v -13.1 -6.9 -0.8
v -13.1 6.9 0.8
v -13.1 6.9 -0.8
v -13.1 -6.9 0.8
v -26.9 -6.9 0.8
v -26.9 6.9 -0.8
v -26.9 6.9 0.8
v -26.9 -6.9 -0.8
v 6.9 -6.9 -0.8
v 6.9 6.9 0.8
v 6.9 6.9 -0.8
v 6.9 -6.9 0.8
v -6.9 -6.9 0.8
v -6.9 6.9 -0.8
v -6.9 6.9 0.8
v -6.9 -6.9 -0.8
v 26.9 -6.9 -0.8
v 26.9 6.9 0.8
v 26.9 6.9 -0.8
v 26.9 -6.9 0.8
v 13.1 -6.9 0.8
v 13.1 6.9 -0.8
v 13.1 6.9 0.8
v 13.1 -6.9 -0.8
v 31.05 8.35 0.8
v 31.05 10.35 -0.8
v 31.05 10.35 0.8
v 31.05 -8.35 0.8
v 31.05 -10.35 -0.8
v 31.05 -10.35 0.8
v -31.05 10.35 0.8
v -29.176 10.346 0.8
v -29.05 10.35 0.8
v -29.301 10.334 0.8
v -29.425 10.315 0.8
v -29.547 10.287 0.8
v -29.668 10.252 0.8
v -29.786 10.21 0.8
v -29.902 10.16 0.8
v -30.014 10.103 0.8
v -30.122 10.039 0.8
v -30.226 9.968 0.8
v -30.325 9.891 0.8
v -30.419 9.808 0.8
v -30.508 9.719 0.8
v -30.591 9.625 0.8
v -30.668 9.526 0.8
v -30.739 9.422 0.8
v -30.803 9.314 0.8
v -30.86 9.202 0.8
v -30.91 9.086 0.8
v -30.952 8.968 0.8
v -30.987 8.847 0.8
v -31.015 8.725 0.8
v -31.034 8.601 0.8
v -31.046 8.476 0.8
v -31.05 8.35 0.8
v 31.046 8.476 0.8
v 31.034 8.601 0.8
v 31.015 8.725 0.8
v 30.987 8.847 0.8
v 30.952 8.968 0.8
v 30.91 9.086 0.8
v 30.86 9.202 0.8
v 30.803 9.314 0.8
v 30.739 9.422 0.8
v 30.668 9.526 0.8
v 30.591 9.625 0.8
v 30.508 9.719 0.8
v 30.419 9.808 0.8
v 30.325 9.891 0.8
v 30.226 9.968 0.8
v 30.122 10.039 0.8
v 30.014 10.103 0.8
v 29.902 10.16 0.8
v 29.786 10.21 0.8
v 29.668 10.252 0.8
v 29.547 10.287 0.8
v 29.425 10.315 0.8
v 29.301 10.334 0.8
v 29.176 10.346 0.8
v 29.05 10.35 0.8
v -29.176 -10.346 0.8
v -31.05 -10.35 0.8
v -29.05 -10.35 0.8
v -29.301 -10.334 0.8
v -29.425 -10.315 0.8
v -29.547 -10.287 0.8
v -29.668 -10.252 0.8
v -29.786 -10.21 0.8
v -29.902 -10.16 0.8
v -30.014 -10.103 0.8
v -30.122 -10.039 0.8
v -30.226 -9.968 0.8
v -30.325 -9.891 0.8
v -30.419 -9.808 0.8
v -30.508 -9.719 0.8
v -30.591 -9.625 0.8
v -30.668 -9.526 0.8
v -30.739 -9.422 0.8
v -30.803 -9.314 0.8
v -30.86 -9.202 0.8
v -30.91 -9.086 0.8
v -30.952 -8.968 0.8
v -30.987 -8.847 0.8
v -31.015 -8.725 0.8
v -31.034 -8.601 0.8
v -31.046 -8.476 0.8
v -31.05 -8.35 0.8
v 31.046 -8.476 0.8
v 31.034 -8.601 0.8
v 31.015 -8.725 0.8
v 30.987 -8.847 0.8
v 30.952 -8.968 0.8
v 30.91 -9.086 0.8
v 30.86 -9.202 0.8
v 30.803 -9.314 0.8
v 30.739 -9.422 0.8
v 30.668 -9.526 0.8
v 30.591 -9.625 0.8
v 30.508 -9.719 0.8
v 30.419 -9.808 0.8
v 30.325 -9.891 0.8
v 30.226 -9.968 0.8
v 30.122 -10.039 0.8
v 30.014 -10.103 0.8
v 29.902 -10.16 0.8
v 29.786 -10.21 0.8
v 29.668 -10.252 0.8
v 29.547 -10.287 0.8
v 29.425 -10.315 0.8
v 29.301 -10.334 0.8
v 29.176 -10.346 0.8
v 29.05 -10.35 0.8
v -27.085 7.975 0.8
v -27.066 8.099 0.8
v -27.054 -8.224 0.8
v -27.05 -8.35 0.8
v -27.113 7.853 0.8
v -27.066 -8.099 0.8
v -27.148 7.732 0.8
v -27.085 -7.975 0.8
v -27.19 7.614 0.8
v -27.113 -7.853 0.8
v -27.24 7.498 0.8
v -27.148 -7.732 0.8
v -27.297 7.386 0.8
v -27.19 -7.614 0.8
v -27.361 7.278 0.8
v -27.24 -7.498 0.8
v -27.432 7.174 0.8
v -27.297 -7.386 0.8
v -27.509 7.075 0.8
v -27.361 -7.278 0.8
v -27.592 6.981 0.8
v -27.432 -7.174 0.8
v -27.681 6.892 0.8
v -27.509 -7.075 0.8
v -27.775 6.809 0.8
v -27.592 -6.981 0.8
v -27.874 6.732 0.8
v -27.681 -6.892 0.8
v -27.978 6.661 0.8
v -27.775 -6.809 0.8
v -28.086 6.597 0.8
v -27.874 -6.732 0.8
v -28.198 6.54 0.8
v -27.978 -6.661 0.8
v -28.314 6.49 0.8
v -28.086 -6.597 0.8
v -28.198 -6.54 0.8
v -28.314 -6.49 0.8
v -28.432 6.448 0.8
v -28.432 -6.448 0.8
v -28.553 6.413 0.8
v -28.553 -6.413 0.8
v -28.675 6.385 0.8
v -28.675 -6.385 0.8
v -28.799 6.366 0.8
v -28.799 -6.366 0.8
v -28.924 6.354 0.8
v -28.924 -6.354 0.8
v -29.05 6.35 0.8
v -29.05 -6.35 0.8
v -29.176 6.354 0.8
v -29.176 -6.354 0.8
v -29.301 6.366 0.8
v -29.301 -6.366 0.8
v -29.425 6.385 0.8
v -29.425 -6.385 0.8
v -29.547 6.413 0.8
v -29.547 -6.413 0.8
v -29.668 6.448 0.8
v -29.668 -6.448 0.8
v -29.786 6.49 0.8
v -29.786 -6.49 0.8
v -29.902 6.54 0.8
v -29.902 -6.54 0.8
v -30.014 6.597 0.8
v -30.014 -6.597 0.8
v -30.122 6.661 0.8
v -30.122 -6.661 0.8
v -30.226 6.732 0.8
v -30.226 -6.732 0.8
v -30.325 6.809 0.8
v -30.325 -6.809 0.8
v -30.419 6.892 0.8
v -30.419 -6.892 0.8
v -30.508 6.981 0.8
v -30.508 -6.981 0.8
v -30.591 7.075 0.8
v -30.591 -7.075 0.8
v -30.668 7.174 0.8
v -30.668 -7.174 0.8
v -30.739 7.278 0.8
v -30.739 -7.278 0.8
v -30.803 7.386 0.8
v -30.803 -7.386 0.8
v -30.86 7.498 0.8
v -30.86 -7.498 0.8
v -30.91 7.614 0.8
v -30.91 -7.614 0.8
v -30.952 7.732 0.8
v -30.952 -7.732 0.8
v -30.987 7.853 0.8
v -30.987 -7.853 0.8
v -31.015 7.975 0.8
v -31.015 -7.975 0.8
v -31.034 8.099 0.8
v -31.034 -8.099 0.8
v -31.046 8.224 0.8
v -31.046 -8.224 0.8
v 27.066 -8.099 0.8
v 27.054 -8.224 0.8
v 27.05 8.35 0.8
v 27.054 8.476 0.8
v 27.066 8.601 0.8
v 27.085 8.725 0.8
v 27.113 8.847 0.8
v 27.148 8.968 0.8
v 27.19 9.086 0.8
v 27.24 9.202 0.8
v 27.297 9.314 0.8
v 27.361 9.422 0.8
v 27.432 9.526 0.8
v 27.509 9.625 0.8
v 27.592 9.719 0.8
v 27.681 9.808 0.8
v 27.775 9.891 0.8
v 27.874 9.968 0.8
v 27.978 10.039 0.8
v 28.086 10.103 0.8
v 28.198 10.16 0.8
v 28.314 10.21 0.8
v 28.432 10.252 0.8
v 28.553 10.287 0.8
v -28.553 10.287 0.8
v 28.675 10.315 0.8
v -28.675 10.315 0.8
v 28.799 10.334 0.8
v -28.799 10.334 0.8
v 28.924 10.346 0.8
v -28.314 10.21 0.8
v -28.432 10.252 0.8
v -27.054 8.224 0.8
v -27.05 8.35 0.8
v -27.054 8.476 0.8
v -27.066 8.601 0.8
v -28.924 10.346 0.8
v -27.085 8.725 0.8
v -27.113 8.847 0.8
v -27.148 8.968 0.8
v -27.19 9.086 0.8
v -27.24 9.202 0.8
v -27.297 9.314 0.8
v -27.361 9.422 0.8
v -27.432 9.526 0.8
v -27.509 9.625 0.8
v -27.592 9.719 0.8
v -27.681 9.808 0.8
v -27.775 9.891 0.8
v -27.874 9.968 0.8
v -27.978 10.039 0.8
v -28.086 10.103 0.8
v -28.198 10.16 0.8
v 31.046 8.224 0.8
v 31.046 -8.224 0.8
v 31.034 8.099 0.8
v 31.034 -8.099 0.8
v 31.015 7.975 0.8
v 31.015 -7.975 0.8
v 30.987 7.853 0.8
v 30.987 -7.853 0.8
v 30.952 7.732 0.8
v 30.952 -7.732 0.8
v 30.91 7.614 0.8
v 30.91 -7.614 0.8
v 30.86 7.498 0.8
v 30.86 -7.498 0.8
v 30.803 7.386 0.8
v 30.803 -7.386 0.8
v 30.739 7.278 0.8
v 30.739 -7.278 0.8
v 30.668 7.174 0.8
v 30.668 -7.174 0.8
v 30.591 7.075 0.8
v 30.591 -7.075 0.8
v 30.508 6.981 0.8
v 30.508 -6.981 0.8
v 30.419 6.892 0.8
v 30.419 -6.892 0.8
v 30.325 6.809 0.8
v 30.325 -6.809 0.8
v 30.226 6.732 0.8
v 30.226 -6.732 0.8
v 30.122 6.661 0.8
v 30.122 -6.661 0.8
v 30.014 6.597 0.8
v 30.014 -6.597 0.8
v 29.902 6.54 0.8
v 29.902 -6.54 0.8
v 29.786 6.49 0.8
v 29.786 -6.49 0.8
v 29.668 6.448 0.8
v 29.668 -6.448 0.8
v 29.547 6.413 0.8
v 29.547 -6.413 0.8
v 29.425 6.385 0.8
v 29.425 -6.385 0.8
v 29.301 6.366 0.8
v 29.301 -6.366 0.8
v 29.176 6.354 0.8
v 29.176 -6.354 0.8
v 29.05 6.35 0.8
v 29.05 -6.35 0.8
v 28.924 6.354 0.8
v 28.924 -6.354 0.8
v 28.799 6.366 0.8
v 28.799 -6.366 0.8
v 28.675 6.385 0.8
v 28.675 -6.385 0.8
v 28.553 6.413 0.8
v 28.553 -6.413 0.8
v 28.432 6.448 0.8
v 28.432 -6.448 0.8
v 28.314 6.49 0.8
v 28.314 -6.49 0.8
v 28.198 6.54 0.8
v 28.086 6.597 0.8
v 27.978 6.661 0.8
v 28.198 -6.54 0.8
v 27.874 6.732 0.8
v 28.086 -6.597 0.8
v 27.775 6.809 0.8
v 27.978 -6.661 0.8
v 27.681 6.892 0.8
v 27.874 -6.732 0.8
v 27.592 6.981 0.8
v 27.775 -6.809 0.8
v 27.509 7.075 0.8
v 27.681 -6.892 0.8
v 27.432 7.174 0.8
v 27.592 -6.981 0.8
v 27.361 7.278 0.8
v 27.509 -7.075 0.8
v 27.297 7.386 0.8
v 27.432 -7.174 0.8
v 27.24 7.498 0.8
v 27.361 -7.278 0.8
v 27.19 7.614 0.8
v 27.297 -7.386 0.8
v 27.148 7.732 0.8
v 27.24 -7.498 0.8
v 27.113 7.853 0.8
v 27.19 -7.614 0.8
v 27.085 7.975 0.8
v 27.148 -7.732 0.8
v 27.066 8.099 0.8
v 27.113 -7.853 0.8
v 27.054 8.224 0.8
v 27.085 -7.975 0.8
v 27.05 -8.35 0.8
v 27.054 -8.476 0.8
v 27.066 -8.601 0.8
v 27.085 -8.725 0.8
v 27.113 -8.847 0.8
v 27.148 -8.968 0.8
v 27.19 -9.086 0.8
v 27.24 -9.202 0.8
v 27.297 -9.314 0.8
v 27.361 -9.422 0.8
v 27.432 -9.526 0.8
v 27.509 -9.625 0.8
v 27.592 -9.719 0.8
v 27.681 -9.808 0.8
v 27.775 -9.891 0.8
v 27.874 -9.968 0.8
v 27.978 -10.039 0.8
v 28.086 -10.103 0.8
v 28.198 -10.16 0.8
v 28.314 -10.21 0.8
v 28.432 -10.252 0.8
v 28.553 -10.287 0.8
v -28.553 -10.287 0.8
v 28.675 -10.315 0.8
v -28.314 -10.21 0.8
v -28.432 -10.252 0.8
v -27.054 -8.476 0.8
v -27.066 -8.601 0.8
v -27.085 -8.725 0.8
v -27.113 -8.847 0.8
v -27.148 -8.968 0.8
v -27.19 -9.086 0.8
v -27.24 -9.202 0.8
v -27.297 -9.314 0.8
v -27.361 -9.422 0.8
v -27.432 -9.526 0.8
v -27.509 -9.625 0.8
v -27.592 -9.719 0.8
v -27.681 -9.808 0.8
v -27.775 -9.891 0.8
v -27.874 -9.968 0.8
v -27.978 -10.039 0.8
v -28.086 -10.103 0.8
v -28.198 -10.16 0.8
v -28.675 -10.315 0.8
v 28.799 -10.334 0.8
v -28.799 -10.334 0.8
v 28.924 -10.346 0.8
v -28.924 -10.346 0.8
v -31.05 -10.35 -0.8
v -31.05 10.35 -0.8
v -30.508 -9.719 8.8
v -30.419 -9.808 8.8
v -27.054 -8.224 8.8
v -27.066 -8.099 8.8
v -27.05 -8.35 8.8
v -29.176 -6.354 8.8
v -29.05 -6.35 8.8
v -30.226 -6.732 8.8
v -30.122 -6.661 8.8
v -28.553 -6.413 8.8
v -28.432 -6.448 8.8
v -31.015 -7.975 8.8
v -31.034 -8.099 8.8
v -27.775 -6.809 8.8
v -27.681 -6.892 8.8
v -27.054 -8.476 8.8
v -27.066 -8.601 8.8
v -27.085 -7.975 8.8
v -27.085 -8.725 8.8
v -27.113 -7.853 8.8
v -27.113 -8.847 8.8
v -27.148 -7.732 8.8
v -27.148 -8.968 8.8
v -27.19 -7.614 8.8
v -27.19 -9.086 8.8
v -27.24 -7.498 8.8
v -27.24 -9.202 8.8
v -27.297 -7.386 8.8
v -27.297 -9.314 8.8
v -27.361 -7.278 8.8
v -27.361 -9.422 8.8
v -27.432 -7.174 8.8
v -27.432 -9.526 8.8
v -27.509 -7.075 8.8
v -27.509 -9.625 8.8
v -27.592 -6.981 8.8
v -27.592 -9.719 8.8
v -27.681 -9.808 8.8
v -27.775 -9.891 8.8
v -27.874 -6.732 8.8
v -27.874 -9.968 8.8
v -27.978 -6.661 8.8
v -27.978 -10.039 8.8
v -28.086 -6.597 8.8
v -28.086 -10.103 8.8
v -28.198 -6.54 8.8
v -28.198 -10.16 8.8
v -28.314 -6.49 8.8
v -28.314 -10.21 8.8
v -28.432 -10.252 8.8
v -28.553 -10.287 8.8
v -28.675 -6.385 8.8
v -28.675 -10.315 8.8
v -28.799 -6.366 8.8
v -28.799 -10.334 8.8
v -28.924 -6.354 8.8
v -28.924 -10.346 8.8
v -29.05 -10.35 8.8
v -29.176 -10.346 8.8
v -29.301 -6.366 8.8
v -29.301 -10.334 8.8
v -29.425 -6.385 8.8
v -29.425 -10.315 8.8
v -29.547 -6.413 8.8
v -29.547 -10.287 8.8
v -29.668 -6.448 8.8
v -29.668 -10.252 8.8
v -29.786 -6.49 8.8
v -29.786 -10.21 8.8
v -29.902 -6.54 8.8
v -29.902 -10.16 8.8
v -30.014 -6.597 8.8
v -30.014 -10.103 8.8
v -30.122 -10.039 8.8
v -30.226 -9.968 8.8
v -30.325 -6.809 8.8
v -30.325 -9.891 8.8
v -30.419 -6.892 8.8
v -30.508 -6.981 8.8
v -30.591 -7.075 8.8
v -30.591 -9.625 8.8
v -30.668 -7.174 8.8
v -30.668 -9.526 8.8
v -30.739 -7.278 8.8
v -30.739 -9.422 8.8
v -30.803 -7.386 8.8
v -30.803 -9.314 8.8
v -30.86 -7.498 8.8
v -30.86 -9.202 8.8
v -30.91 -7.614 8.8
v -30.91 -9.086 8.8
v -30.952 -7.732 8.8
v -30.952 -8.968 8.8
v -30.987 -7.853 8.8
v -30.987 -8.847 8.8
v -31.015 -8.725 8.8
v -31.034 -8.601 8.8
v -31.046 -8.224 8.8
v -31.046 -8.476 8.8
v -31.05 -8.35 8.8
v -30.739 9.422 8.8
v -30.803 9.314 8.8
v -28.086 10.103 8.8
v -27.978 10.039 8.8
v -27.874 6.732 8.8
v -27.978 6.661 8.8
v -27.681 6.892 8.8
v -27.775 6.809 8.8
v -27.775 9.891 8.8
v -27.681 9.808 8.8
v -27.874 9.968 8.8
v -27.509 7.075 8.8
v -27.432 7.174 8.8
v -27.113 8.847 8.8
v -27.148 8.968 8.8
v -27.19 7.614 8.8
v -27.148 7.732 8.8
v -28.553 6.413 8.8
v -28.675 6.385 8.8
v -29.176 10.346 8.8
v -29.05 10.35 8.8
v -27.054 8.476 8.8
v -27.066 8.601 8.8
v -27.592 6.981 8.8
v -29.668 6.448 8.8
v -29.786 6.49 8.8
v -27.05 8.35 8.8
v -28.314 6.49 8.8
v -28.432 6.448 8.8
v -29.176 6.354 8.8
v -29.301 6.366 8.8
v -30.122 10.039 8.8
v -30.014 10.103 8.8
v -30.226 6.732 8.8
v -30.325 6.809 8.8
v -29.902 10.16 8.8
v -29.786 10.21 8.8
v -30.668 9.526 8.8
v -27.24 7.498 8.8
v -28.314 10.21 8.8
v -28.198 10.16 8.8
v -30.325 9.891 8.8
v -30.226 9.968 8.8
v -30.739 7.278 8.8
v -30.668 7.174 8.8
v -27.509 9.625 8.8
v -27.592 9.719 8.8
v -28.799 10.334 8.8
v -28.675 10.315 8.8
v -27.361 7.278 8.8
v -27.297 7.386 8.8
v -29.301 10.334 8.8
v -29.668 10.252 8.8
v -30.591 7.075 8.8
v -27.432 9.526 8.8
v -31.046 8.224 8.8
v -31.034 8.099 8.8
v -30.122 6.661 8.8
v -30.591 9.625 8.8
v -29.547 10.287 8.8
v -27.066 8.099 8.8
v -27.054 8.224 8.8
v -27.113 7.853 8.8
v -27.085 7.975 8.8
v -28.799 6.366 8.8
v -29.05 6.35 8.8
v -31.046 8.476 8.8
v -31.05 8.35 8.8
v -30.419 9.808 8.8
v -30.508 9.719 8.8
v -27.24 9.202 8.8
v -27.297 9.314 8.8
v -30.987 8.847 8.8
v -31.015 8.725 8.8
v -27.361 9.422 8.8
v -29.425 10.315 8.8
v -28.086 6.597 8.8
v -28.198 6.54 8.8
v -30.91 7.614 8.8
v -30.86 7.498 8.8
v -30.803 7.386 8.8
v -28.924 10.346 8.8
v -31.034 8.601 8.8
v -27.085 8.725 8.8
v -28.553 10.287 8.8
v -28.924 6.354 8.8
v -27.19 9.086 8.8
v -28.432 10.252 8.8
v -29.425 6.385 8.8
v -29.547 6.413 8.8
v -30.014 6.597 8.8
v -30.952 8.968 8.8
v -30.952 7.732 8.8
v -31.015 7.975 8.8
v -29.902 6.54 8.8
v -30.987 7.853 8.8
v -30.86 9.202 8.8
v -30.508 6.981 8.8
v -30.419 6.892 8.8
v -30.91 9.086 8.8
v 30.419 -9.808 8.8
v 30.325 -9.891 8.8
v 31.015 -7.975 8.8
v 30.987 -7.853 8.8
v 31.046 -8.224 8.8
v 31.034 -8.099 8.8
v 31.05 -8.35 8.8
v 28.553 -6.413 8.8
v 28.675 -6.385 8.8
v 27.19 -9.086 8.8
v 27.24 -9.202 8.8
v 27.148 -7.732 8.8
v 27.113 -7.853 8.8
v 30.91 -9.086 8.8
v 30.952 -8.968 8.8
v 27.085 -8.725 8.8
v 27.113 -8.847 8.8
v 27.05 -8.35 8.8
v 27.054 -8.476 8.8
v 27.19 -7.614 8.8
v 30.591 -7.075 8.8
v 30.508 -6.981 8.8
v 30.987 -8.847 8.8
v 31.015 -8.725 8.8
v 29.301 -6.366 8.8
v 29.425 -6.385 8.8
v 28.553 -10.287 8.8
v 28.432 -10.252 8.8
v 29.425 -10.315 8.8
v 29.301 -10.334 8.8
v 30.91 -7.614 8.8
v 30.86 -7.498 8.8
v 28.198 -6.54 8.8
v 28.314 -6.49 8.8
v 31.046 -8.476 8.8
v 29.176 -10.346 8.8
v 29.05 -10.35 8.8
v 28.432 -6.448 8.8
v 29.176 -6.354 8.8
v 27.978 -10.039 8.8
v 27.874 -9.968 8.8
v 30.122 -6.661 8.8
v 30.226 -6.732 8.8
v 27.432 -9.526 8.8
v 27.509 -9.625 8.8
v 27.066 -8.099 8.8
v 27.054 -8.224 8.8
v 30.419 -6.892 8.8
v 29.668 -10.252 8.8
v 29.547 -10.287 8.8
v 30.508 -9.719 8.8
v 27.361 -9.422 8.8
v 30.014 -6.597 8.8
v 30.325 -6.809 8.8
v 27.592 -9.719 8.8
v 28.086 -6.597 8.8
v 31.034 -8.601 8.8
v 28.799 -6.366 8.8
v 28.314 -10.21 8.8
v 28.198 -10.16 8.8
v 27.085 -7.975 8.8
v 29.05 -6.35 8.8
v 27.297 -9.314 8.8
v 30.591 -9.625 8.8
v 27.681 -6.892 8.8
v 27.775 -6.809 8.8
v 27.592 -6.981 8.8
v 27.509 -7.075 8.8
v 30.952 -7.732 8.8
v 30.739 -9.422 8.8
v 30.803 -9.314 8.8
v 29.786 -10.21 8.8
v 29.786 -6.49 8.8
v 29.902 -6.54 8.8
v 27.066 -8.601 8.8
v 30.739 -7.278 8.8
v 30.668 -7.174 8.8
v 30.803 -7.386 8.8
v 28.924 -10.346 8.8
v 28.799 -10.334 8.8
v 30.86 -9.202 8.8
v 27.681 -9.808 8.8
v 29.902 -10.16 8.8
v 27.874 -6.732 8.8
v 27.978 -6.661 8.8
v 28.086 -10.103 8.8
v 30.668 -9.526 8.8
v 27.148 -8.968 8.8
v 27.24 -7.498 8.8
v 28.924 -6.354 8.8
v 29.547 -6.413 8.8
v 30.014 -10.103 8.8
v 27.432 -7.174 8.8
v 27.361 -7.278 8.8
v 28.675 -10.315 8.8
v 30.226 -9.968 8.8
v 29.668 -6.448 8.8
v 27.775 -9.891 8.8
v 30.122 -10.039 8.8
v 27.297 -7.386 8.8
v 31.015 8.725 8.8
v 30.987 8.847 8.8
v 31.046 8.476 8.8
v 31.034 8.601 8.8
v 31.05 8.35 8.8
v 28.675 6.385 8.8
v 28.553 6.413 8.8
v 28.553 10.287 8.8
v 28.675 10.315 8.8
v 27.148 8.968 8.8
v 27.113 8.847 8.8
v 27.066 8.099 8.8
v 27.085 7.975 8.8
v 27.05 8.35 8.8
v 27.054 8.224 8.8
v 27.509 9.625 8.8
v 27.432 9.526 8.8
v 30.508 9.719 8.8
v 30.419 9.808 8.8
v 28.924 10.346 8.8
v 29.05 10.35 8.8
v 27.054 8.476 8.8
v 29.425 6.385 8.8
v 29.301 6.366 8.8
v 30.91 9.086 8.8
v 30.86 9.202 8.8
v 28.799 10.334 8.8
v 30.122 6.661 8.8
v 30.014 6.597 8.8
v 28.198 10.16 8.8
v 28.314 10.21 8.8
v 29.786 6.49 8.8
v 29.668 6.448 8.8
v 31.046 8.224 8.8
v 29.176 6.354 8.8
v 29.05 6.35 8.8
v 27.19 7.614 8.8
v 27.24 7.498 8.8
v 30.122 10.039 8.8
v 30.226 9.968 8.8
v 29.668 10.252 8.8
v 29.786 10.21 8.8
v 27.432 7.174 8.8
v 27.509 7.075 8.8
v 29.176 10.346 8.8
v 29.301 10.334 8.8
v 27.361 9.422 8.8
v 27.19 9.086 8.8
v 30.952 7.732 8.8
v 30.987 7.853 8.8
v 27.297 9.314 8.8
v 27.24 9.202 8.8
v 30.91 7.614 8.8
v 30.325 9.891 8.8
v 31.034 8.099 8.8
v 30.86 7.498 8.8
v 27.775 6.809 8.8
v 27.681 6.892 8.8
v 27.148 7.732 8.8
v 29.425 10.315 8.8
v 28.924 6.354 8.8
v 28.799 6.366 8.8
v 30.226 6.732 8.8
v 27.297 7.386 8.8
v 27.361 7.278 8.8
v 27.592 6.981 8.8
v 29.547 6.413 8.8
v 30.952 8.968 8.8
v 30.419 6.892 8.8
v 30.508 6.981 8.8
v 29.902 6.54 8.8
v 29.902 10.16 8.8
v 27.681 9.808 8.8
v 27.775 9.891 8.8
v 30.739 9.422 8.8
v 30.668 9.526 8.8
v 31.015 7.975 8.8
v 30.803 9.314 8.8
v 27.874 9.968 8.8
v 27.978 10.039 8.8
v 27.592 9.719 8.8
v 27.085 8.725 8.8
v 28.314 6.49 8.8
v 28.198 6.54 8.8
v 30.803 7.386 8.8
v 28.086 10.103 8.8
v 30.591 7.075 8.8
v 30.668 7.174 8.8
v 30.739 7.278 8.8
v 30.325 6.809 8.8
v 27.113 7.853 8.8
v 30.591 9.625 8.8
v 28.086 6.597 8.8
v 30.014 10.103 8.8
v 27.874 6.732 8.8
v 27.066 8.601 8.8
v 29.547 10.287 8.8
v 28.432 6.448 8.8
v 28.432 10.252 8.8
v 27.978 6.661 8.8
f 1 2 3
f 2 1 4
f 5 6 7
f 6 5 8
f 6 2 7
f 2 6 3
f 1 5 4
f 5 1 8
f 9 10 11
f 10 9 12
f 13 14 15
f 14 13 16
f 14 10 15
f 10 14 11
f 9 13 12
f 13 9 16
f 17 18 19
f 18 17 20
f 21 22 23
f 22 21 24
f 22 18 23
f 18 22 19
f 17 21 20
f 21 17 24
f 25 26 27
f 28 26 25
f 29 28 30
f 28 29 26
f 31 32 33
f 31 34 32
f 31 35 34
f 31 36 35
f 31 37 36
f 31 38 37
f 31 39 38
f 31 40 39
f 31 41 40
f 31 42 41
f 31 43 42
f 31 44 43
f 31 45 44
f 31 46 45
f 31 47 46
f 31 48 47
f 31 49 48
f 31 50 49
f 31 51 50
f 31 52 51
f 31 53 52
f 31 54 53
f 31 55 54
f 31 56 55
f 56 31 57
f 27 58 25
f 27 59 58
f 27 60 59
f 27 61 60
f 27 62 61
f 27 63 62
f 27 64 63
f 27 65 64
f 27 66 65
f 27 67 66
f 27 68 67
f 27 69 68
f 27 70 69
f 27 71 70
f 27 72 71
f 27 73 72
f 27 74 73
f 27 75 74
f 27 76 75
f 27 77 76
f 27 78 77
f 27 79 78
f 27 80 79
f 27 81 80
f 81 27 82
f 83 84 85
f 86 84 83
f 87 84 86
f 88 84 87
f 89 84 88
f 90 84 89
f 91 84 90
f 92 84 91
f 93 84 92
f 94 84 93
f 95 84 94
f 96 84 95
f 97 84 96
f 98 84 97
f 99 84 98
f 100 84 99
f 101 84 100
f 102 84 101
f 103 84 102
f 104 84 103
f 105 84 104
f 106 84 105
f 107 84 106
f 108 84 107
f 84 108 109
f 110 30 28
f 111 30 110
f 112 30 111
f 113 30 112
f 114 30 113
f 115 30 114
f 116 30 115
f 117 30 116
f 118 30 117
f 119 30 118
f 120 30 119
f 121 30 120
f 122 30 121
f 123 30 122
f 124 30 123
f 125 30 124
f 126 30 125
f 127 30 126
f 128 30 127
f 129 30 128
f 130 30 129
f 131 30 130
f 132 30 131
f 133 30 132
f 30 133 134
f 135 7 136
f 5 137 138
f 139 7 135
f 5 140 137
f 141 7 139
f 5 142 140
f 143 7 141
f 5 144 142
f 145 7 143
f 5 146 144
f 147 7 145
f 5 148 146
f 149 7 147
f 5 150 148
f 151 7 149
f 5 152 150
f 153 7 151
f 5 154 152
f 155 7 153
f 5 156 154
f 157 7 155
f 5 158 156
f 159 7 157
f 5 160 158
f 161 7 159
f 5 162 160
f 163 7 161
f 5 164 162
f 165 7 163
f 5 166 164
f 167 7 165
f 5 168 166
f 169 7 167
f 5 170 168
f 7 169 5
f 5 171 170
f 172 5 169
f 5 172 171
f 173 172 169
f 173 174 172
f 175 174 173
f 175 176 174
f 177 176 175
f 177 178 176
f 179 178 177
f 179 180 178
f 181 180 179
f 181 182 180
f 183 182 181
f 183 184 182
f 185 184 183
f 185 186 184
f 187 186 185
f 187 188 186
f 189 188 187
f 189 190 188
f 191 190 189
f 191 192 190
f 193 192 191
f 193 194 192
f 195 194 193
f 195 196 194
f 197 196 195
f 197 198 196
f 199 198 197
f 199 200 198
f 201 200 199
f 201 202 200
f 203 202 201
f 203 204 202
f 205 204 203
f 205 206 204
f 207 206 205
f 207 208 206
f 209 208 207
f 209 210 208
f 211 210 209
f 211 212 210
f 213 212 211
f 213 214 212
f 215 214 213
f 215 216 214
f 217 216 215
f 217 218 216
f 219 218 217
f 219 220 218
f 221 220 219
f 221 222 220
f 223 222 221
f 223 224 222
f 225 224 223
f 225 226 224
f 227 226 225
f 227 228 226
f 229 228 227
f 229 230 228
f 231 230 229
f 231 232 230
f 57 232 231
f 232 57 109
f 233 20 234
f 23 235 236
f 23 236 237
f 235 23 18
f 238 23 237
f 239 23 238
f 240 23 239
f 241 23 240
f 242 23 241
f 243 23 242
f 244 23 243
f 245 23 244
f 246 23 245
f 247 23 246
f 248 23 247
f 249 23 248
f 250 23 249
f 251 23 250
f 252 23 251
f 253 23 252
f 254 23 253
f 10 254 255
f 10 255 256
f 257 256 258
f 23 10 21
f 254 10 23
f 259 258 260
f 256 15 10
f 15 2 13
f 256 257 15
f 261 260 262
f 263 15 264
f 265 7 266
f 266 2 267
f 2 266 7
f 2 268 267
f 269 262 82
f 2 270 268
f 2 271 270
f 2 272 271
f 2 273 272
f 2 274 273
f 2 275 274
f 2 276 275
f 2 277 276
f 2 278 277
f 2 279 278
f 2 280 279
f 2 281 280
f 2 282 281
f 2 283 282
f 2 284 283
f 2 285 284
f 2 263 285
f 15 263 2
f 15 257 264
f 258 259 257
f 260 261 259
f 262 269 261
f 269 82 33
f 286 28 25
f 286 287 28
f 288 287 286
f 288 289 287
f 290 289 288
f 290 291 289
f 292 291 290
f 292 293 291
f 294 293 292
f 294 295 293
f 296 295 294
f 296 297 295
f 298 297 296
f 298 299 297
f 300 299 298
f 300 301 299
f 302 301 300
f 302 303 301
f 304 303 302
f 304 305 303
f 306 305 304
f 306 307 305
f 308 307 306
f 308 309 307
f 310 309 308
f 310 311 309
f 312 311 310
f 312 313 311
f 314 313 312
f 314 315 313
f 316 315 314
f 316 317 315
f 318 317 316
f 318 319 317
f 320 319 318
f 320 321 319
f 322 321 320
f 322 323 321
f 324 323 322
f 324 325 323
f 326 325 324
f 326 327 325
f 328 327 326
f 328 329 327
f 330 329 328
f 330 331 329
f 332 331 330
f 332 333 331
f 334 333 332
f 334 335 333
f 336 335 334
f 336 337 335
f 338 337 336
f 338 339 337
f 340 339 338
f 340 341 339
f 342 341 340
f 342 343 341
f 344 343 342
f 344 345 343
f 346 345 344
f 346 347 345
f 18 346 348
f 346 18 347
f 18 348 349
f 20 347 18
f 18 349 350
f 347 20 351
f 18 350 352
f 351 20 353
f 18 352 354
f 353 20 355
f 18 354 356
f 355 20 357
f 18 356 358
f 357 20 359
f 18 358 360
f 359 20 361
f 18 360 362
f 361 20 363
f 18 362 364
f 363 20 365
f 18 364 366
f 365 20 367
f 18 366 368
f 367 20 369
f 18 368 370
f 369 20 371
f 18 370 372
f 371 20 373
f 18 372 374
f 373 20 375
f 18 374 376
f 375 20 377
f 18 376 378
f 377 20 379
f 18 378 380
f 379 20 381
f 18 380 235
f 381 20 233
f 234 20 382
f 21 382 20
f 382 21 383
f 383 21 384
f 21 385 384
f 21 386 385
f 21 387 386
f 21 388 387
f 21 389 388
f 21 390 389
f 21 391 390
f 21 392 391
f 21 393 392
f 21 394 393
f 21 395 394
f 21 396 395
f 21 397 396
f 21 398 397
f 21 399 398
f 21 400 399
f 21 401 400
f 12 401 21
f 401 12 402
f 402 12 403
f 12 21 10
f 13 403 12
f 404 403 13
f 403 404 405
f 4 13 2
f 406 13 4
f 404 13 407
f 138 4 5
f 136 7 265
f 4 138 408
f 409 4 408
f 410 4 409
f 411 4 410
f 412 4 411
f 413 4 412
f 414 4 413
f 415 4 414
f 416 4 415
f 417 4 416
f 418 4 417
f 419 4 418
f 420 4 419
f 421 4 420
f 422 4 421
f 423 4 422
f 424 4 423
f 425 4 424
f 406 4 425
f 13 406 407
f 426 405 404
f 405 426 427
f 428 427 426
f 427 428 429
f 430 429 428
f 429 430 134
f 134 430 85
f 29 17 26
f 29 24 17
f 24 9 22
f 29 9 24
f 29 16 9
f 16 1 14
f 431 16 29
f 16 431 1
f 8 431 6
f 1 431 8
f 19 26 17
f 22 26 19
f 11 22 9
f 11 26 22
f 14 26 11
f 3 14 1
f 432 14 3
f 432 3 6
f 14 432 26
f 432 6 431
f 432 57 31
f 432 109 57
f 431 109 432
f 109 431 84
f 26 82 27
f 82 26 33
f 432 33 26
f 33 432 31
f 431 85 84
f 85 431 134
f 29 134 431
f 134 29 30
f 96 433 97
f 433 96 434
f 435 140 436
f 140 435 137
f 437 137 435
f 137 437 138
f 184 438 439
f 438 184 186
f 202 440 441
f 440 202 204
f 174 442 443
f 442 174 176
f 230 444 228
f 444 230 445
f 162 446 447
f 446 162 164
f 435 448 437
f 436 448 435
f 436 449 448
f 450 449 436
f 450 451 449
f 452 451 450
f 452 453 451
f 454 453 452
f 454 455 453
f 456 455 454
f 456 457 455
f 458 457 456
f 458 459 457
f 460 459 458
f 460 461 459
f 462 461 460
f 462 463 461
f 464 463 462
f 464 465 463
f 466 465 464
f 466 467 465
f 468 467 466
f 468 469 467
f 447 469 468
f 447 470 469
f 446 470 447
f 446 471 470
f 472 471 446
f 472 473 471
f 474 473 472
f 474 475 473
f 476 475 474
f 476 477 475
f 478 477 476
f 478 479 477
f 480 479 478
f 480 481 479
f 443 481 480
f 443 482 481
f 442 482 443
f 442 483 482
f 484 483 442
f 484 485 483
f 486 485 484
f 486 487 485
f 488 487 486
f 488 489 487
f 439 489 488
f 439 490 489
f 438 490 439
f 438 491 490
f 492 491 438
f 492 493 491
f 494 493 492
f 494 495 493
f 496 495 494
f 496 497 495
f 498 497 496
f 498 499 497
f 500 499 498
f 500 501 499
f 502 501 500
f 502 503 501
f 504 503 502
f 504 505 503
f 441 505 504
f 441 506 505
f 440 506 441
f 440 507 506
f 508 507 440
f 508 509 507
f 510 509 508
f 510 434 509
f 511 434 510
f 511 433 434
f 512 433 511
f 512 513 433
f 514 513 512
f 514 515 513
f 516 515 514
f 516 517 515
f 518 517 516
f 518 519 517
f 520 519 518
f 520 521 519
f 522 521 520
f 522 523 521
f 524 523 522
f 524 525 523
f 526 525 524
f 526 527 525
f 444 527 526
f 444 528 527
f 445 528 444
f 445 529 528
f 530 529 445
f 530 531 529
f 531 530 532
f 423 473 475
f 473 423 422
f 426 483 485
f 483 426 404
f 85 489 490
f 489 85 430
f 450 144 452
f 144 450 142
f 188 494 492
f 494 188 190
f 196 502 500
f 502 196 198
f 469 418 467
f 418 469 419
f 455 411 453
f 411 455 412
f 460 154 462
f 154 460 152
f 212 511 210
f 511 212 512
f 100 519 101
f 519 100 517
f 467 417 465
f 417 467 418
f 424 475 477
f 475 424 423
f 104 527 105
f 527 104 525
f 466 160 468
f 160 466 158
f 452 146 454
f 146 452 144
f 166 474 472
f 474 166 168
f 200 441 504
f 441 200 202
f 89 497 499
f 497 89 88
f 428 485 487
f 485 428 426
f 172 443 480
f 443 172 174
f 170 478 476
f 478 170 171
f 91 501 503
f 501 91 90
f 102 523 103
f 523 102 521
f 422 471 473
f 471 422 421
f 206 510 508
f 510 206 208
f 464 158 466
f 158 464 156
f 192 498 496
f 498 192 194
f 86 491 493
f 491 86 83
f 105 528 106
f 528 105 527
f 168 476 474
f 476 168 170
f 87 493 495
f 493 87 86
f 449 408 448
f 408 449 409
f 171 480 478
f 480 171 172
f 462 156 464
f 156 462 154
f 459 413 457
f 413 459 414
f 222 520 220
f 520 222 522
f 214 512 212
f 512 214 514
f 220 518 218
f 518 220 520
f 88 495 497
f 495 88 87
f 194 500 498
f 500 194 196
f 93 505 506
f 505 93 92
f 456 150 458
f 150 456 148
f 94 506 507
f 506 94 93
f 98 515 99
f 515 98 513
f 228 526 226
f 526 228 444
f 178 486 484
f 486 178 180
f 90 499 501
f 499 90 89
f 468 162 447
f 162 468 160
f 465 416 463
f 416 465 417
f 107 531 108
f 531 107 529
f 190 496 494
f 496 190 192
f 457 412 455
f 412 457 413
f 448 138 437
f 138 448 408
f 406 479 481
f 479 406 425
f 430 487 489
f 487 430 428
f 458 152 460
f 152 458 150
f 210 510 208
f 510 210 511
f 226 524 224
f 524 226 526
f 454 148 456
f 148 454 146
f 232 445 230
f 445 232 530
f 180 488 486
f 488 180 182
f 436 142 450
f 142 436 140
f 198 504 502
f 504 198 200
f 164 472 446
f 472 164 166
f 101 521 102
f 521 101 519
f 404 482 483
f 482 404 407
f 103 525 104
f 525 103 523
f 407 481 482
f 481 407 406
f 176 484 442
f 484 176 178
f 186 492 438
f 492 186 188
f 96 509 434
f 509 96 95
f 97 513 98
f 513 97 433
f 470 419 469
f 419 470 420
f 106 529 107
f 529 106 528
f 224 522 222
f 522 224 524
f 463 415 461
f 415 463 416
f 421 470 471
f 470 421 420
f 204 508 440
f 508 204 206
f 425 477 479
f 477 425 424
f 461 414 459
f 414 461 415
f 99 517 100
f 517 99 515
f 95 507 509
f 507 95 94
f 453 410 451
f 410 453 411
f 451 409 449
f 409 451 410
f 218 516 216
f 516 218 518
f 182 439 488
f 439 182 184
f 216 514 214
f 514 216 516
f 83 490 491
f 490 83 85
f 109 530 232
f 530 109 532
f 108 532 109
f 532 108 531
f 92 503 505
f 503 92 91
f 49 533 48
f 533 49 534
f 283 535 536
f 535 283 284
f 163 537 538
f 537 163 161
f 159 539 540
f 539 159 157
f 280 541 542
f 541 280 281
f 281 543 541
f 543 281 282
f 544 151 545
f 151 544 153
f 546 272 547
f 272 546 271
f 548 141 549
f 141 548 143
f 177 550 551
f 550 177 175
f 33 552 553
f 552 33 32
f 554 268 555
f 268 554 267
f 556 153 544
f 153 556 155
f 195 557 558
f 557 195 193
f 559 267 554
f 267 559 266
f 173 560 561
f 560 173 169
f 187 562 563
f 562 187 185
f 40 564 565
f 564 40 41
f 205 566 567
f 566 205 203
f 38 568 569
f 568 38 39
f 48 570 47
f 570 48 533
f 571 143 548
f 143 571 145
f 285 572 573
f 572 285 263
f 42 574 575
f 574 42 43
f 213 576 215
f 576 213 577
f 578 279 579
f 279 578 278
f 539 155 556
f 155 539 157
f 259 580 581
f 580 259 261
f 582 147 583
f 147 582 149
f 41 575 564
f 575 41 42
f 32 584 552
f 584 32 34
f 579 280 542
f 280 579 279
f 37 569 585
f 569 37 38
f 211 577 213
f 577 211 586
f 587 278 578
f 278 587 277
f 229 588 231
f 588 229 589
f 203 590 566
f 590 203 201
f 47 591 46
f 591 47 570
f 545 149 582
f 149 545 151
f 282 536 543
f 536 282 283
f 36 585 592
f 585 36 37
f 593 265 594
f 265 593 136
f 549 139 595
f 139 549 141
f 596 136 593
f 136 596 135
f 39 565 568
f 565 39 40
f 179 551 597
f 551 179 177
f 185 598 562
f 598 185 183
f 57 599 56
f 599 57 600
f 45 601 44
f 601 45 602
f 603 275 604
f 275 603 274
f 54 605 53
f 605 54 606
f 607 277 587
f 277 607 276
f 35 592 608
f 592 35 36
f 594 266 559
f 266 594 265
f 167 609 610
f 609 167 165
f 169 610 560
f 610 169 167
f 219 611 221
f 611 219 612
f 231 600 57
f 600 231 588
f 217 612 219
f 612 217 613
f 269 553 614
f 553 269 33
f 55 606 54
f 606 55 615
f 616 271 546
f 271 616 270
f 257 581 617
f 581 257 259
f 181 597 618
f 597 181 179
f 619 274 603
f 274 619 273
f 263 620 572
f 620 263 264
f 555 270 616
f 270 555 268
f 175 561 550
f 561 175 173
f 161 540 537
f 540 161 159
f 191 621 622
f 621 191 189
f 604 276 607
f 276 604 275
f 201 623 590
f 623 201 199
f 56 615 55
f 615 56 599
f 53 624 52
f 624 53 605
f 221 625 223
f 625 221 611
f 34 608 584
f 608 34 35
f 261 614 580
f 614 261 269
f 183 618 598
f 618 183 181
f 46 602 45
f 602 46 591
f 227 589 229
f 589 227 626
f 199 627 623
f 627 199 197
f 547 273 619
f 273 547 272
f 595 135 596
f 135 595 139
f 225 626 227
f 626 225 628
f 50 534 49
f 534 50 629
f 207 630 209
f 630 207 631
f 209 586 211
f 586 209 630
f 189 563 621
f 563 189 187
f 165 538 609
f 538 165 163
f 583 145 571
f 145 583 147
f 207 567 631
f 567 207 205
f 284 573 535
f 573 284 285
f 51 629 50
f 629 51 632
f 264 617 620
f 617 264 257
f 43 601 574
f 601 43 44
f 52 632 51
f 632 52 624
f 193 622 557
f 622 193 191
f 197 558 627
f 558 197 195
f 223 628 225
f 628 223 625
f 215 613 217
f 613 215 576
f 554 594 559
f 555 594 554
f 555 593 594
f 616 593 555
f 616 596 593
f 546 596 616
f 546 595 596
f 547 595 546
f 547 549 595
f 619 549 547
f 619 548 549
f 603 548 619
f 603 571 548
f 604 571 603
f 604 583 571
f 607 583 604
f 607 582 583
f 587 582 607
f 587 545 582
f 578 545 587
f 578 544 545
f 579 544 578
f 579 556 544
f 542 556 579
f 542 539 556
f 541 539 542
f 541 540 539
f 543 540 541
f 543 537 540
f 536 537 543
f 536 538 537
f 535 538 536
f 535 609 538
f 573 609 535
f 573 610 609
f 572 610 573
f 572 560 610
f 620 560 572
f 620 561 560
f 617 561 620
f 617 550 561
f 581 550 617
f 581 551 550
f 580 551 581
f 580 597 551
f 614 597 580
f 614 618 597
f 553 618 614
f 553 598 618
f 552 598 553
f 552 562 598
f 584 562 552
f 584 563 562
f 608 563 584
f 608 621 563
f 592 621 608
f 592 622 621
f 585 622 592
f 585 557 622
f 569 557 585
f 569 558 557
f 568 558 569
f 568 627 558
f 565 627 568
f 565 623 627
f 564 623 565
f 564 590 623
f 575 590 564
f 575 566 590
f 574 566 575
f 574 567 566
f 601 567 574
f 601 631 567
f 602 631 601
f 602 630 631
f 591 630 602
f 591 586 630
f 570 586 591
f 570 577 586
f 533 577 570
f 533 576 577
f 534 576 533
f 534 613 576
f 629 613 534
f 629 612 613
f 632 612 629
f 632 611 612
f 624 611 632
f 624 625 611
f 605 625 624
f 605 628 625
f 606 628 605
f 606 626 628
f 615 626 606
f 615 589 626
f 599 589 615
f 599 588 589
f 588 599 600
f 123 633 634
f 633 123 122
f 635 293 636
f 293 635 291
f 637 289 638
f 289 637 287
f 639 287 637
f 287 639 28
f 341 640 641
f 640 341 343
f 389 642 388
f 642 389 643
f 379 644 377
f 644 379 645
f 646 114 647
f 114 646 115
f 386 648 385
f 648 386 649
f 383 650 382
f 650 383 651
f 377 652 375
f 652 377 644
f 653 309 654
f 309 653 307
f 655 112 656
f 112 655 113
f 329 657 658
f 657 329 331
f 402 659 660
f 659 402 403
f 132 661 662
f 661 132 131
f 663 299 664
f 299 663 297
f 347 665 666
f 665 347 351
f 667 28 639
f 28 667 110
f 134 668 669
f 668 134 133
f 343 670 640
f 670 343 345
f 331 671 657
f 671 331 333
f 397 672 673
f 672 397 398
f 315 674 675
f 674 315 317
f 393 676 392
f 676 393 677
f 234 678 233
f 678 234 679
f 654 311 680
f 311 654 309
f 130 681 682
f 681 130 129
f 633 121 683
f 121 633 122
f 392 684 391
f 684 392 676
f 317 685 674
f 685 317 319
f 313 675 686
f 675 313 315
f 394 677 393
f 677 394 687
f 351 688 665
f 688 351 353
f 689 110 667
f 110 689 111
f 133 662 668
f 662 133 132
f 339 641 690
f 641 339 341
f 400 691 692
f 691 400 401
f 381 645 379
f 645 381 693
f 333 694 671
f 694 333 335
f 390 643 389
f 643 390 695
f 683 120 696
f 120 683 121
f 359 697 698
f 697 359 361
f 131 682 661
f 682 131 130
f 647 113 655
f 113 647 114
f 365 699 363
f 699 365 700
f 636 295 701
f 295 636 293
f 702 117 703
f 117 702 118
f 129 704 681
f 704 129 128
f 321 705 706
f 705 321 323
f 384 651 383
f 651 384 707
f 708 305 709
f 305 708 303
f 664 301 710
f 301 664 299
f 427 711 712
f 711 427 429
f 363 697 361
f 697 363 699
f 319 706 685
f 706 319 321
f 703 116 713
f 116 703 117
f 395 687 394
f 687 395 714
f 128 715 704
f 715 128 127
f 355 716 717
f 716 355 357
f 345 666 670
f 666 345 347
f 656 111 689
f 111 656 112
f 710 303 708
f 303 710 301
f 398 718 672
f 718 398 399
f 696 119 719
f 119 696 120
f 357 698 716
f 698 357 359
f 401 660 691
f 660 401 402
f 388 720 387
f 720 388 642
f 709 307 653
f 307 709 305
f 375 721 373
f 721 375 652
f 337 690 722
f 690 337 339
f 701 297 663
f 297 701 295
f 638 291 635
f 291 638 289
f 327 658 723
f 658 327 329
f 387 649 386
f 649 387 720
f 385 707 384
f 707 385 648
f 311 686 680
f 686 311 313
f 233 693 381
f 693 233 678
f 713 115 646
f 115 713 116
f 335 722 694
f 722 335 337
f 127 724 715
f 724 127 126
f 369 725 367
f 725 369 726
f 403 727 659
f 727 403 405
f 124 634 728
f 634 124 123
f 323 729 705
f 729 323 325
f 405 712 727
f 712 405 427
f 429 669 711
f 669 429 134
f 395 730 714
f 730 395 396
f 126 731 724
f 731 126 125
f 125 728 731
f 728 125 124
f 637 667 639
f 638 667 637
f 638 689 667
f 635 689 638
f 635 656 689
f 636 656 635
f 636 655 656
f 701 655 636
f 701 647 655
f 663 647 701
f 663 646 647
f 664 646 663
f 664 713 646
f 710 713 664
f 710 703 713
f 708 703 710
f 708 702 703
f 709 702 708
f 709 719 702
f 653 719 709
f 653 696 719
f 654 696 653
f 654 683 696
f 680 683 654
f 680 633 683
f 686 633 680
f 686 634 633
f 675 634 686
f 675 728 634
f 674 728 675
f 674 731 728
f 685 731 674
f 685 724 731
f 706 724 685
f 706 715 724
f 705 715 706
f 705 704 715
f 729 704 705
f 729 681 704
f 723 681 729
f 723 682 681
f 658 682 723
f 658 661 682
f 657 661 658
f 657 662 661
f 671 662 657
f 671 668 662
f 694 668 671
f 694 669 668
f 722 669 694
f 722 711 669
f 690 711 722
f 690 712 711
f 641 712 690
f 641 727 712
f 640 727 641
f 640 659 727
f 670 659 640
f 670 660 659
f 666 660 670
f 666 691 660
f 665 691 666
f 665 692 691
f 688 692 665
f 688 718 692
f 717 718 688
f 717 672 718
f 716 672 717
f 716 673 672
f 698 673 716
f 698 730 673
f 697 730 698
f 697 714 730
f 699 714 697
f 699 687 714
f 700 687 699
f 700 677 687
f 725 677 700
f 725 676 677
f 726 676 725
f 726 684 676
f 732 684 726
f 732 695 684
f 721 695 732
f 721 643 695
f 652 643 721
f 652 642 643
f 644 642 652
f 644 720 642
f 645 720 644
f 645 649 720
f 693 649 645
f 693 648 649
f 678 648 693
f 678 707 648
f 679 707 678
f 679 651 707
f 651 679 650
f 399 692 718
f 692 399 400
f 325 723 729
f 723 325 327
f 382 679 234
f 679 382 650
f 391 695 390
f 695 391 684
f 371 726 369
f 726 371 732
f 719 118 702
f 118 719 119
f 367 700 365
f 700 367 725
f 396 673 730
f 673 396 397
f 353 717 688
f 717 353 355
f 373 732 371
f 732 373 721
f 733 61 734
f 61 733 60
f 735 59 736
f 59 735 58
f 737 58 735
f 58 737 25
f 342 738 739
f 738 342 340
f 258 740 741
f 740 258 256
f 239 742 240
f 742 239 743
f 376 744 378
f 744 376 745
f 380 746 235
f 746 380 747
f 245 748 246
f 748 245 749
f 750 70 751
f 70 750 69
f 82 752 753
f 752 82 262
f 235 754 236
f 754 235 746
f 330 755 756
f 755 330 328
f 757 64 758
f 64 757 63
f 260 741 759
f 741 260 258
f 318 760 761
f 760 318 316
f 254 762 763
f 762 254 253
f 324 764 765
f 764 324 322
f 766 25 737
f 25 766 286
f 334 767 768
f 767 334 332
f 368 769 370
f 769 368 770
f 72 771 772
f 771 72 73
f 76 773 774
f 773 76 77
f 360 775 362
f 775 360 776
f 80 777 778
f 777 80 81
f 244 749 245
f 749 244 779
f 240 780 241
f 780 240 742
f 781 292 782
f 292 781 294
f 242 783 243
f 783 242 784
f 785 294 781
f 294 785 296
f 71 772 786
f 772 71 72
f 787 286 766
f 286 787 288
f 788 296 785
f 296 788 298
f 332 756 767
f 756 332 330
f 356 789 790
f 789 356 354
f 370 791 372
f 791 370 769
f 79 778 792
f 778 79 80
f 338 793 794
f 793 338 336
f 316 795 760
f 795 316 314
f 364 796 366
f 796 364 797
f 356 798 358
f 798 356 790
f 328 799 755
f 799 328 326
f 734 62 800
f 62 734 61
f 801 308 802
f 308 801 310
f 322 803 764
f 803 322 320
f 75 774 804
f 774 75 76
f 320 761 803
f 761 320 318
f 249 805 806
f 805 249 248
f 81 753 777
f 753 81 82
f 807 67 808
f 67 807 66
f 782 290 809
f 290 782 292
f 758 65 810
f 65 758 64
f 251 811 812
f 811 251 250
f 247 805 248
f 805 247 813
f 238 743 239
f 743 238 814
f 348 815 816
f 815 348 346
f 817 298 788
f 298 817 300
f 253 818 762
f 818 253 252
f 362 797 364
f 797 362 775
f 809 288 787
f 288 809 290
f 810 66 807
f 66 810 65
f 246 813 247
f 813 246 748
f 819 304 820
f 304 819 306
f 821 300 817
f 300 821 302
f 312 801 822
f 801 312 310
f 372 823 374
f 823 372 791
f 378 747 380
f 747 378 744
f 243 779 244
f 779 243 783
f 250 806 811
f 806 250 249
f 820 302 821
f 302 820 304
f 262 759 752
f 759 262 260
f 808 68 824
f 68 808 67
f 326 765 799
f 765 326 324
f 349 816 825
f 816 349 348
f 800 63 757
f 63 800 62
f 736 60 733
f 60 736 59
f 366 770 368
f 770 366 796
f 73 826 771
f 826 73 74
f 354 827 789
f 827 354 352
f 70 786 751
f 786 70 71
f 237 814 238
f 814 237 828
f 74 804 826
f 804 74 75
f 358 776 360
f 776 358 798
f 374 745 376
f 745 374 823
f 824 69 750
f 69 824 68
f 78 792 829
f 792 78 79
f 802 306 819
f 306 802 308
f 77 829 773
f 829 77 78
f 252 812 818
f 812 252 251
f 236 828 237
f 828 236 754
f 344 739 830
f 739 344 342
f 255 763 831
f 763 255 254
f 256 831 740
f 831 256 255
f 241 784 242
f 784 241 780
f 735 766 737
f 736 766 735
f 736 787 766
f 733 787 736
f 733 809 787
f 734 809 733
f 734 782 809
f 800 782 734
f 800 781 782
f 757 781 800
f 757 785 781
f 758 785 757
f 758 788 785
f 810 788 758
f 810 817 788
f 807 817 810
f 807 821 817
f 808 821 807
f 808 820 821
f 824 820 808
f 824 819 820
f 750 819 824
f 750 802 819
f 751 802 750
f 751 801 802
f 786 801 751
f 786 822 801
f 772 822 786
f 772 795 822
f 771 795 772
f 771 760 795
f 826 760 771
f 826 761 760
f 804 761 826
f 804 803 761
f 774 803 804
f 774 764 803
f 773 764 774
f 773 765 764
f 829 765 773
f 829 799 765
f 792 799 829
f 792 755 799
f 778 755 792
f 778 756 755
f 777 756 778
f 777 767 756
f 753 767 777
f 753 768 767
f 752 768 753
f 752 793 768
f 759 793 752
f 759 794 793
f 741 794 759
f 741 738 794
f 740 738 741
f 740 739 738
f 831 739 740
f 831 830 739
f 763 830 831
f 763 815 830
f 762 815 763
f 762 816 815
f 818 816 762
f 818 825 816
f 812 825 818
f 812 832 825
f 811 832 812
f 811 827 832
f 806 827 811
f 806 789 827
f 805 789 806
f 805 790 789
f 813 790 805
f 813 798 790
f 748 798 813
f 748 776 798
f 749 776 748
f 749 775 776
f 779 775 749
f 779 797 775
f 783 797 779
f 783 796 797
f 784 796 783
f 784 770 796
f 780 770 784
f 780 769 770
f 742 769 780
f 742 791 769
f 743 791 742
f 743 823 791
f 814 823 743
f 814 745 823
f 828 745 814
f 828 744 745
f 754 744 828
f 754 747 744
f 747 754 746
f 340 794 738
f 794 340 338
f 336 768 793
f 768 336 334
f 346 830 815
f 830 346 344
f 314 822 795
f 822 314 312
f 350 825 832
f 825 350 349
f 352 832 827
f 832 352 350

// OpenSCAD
switch_spacing=6.2;
switch_width=13.8;
switch_number_x=3;
switch_number_y=1;

foot_height=8;


plate_thickness=1.6;
plate_width=switch_width*1.5*switch_number_x;
plate_length=switch_width*1.5*switch_number_y;

module switch(){
	cube([switch_width,switch_width,10], center=true);
}

module switch_plate(){
	cube([plate_width,plate_length,plate_thickness], center=true);
}

difference(){
	switch_plate();
	for (i = [-1, 0, 1]) {
		translate([i*(switch_width+switch_spacing),0,0]) switch();
	}
}

//feet
module foot(){
	$fn=100;
	cylinder(h=foot_height, r=2, center=true);
}
for (i = [-1, 1]) {
	for (j = [-1, 1]) {
		translate([i*(plate_width/2-2), j*(plate_length/2-2), foot_height/2+plate_thickness/2]) foot();
	}
}
